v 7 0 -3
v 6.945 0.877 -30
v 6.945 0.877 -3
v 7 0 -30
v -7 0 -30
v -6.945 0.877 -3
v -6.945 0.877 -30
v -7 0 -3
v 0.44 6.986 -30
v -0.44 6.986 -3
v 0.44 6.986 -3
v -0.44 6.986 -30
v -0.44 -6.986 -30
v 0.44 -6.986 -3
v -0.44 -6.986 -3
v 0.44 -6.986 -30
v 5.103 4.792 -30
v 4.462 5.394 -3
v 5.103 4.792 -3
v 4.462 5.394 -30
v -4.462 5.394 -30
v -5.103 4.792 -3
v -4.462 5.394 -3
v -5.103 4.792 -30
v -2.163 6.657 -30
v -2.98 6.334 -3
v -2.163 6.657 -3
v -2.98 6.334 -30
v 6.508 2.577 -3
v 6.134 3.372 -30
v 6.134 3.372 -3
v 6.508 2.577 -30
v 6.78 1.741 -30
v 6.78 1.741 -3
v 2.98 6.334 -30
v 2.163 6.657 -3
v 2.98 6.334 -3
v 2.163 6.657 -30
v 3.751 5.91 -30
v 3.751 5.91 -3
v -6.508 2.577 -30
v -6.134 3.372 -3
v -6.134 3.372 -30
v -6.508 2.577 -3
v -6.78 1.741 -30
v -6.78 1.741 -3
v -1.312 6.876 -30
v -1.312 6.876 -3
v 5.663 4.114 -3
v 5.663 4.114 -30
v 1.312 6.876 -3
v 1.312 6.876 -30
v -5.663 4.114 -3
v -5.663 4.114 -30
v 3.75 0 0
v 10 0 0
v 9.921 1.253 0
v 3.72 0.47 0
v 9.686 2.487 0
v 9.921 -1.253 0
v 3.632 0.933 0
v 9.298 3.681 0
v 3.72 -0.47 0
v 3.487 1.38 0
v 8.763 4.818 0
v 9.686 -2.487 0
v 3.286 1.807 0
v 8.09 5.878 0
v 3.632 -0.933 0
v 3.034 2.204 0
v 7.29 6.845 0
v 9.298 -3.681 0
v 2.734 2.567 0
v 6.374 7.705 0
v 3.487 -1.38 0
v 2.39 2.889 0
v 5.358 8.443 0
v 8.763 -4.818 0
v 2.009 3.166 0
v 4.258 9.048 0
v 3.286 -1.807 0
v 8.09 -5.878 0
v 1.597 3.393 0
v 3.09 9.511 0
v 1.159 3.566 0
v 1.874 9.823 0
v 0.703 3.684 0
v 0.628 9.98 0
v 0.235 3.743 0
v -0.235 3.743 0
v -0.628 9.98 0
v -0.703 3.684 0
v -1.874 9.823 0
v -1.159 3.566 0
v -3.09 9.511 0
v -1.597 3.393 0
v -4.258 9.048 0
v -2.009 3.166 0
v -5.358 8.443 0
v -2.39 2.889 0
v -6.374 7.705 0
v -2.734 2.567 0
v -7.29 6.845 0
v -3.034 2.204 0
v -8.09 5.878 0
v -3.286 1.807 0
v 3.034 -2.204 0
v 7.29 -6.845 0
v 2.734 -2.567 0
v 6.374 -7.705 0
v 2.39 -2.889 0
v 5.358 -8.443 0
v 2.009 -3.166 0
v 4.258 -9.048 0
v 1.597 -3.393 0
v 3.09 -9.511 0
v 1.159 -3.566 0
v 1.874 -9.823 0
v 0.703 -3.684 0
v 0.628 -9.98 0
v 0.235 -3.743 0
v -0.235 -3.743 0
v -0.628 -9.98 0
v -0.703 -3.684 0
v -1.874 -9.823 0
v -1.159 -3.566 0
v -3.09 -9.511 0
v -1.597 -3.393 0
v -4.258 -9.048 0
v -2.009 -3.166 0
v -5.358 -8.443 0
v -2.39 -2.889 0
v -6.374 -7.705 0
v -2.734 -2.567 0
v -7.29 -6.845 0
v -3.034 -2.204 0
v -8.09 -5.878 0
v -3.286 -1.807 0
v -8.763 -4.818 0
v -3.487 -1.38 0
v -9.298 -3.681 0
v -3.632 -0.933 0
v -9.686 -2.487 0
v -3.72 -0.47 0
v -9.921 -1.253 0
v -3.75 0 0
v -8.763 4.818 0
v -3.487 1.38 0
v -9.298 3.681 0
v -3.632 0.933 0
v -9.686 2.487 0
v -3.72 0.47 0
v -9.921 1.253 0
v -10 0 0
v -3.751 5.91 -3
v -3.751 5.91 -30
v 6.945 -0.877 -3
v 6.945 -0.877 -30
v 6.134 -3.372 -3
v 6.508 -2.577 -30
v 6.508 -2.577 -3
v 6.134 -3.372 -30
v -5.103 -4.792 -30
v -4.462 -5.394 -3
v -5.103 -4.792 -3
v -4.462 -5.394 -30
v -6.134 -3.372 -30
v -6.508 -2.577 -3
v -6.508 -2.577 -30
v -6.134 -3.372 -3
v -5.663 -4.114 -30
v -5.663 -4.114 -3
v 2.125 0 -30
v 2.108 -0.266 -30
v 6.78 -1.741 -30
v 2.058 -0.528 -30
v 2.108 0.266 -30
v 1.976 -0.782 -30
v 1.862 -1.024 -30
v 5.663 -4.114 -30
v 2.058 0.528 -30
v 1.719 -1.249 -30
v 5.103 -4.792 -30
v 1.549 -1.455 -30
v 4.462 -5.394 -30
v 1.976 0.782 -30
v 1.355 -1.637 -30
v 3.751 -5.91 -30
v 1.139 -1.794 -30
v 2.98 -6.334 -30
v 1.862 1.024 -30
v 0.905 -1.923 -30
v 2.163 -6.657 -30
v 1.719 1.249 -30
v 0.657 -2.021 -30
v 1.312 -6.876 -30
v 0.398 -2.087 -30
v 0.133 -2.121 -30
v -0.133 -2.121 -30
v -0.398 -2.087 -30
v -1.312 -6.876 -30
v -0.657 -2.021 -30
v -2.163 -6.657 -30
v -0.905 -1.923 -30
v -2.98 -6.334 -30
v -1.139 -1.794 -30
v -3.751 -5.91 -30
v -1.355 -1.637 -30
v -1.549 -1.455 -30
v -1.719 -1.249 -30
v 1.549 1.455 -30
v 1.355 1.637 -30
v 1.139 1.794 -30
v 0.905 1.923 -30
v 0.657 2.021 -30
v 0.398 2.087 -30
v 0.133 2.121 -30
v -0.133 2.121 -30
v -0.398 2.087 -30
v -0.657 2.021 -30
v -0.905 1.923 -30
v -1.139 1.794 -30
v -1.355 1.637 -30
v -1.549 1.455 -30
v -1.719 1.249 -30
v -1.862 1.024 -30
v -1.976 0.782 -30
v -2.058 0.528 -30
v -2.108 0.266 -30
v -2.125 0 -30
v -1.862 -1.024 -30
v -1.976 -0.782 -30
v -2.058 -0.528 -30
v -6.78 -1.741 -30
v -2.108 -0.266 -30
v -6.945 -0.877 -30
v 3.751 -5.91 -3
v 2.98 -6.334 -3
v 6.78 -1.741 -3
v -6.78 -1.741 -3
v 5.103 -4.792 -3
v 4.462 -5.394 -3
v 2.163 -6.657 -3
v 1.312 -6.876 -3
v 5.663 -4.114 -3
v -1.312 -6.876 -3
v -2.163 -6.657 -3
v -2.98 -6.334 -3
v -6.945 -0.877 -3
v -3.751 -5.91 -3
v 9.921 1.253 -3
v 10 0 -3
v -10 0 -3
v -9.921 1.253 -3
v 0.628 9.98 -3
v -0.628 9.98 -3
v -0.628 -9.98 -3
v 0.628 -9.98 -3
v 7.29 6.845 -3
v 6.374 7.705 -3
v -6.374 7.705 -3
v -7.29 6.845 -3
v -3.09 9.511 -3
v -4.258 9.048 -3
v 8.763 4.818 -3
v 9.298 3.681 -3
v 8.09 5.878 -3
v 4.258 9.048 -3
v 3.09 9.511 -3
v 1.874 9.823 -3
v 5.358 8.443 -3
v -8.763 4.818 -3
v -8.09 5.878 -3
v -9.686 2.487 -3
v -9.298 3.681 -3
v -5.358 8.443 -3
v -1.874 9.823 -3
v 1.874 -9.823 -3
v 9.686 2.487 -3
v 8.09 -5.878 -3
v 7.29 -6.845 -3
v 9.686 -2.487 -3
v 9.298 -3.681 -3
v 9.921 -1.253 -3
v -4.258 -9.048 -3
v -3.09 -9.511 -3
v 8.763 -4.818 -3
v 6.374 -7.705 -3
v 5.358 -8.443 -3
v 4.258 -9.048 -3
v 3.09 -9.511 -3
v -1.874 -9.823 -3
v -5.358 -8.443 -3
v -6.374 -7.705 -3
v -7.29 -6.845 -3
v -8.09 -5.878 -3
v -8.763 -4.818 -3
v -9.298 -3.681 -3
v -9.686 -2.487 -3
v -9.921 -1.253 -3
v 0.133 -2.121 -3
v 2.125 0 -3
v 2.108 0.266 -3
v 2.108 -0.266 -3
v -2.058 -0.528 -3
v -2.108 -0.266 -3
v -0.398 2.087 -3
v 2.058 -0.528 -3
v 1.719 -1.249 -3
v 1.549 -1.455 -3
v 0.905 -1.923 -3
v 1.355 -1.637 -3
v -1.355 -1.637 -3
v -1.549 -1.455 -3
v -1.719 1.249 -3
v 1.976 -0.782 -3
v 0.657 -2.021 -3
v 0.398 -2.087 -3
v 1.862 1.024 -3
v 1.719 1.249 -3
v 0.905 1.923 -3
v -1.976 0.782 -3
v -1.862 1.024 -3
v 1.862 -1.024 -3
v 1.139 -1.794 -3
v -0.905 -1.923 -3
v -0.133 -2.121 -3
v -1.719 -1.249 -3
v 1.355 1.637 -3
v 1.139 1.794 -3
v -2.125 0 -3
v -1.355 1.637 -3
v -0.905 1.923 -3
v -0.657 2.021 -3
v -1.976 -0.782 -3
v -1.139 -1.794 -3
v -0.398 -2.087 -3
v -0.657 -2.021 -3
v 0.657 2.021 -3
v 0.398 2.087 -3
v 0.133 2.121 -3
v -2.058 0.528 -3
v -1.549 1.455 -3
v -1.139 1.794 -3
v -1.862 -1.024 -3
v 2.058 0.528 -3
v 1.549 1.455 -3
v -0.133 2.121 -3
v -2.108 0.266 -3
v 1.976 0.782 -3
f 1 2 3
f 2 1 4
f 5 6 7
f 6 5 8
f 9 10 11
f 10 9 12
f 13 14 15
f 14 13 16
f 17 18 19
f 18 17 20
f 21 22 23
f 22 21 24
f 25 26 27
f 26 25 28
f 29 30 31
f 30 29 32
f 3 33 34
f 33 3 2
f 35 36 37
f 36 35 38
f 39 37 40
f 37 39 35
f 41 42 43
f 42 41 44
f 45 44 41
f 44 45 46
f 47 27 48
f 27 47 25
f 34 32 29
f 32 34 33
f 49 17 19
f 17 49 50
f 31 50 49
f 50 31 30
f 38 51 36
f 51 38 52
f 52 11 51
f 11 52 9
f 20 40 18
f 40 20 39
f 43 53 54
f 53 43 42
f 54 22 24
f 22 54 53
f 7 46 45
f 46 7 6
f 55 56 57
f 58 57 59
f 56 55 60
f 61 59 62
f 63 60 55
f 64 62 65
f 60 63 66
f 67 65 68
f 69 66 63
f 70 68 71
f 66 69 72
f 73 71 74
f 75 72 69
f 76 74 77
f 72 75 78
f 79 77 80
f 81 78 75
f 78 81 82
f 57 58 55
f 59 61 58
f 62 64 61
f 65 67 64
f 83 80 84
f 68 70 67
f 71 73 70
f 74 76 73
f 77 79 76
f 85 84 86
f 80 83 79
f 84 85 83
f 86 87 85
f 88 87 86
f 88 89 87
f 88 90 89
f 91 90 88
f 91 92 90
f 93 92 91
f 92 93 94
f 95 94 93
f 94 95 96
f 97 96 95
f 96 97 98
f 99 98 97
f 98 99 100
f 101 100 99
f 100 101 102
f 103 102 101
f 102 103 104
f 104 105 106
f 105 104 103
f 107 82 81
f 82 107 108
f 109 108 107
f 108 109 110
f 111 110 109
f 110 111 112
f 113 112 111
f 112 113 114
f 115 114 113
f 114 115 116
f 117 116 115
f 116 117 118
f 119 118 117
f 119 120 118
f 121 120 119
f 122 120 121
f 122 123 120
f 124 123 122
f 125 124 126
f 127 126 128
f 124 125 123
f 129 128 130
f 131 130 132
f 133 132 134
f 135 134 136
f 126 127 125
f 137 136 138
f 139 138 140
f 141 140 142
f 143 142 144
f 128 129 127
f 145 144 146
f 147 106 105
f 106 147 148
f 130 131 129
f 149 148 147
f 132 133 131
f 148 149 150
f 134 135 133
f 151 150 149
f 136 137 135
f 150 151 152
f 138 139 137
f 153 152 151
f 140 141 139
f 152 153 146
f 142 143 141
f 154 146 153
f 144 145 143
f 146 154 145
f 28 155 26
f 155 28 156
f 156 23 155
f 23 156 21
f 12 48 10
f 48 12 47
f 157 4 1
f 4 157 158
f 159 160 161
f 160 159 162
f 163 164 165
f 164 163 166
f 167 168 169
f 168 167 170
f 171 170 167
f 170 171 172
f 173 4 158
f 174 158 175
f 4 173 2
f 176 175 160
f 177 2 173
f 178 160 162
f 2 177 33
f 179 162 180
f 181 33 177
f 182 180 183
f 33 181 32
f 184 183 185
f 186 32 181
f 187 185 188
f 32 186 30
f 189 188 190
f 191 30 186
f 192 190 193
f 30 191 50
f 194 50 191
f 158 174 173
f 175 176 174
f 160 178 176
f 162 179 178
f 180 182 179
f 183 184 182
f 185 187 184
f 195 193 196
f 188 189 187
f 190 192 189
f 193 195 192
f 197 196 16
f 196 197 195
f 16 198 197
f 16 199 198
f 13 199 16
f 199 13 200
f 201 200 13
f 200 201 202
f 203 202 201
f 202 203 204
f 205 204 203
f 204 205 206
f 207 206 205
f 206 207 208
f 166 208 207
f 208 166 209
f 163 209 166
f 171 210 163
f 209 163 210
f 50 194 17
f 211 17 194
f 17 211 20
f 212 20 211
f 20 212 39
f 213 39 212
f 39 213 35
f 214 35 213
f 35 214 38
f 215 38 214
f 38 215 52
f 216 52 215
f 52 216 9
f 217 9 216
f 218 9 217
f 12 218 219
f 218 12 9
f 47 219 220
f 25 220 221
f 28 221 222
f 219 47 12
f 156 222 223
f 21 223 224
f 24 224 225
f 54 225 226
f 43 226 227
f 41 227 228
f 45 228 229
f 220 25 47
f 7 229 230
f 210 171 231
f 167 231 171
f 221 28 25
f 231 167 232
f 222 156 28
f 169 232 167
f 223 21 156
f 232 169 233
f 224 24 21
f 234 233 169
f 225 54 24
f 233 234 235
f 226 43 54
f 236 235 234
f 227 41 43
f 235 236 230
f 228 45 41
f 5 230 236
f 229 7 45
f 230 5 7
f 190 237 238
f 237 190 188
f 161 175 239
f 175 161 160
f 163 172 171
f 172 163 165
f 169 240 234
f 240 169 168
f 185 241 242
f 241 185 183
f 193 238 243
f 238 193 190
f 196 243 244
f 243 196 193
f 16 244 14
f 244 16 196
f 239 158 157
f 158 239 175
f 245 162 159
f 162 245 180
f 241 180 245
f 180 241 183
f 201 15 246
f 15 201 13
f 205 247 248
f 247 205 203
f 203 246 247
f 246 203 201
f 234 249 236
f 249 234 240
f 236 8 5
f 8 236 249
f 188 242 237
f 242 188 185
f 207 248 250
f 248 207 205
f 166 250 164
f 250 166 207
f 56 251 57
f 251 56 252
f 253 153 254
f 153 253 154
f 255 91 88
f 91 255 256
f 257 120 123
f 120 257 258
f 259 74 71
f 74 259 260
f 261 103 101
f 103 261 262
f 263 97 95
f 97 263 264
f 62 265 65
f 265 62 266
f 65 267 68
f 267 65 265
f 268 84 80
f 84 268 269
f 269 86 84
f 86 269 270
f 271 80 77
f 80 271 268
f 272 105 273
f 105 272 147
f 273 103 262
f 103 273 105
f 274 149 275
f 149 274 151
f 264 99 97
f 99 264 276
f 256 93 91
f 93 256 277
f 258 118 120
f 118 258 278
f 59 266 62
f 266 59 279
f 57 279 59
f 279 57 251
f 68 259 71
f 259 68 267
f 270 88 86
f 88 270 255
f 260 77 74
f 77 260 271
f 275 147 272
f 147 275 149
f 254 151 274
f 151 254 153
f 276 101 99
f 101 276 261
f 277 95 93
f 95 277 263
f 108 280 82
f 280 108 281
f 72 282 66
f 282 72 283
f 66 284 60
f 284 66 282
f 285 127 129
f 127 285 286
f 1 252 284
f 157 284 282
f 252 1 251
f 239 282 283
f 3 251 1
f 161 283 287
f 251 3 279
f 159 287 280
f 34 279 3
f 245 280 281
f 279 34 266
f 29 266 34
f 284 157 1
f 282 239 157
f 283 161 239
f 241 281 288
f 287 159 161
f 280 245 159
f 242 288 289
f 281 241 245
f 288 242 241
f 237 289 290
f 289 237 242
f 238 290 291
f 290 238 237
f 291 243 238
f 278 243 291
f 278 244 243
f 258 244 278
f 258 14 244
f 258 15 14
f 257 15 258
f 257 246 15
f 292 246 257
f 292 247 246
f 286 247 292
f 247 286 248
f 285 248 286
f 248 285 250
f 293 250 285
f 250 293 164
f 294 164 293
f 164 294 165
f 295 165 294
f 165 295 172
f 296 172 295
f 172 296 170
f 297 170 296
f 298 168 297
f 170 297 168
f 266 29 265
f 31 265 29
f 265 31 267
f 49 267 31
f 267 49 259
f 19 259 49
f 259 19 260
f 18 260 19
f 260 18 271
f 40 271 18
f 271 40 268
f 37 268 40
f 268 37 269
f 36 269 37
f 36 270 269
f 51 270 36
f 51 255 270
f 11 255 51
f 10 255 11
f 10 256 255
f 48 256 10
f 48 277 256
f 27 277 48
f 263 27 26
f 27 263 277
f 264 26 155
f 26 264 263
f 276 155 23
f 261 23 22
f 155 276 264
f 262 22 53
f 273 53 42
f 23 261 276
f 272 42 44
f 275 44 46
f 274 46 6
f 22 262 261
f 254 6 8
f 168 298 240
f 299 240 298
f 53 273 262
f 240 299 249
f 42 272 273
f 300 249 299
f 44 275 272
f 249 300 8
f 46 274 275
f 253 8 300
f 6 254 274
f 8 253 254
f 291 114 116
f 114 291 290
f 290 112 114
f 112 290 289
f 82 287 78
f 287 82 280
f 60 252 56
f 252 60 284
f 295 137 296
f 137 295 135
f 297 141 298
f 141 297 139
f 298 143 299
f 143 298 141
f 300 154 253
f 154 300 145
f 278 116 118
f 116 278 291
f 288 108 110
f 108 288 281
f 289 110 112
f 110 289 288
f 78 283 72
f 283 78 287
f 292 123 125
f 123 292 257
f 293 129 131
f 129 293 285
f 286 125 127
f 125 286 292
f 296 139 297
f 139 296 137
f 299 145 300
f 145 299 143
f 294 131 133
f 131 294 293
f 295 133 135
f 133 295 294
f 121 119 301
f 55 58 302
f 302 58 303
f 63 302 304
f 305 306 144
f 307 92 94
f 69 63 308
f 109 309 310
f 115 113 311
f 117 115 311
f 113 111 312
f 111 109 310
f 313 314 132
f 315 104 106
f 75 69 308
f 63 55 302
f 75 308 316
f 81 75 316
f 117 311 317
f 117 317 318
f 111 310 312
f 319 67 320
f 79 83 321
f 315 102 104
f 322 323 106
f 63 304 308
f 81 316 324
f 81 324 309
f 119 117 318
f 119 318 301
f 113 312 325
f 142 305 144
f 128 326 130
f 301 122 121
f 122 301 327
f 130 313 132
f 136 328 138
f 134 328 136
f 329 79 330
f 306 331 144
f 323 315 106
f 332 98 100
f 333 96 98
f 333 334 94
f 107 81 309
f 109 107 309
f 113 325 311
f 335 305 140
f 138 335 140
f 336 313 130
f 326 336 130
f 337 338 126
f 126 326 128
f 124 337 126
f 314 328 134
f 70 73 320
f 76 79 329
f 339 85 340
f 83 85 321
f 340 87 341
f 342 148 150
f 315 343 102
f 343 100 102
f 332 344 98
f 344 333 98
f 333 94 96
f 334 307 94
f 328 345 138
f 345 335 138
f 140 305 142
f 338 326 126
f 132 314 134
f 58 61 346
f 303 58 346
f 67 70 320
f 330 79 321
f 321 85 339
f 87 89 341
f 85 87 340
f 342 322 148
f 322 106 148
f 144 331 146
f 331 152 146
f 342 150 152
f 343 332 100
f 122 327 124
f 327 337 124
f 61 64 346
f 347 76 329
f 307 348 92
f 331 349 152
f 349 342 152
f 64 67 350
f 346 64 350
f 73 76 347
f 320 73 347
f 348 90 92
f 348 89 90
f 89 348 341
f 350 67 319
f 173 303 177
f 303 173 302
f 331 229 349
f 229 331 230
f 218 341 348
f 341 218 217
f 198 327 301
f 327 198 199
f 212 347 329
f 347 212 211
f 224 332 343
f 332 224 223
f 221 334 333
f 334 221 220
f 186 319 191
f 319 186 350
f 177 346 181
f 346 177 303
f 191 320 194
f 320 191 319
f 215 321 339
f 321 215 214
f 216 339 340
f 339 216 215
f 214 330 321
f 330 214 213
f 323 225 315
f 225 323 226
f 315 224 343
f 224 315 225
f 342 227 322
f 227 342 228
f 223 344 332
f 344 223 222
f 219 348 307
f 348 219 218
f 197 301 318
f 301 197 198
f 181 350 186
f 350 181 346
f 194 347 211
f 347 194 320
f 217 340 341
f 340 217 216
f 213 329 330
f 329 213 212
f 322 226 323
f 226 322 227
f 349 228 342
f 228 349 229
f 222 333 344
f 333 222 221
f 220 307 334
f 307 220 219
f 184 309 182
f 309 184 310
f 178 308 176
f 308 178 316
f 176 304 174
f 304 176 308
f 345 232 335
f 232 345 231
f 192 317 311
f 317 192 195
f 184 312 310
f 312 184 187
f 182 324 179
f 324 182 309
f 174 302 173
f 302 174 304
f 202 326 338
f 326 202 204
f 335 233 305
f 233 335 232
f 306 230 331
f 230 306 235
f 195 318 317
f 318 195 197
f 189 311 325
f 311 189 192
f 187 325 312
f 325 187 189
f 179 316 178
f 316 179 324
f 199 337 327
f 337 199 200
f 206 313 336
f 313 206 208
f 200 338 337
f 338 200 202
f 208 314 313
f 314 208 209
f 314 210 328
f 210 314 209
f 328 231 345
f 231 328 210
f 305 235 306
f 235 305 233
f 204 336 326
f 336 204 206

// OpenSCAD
$fn = 50;


difference() {
	union() {
		translate(v = [0, 0, -30.0000000000]) {
			cylinder(h = 30, r = 7.0000000000);
		}
		translate(v = [0, 0, -3.0000000000]) {
			cylinder(h = 3, r = 10.0000000000);
		}
	}
	union() {
		translate(v = [0, 0, 0]) {
			rotate(a = [0, 0, 0]) {
				difference() {
					union() {
						#translate(v = [0, 0, -30.0000000000]) {
							cylinder(h = 30, r = 2.0000000000);
						}
						#translate(v = [0, 0, -3]) {
							cylinder(h = 3, r1 = 2.1250000000, r2 = 3.7500000000);
						}
						#translate(v = [0, 0, -30.0000000000]) {
							cylinder(h = 30, r = 2.1250000000);
						}
						#translate(v = [0, 0, -30.0000000000]) {
							cylinder(h = 30, r = 2.0000000000);
						}
					}
					union();
				}
			}
		}
	}
}
